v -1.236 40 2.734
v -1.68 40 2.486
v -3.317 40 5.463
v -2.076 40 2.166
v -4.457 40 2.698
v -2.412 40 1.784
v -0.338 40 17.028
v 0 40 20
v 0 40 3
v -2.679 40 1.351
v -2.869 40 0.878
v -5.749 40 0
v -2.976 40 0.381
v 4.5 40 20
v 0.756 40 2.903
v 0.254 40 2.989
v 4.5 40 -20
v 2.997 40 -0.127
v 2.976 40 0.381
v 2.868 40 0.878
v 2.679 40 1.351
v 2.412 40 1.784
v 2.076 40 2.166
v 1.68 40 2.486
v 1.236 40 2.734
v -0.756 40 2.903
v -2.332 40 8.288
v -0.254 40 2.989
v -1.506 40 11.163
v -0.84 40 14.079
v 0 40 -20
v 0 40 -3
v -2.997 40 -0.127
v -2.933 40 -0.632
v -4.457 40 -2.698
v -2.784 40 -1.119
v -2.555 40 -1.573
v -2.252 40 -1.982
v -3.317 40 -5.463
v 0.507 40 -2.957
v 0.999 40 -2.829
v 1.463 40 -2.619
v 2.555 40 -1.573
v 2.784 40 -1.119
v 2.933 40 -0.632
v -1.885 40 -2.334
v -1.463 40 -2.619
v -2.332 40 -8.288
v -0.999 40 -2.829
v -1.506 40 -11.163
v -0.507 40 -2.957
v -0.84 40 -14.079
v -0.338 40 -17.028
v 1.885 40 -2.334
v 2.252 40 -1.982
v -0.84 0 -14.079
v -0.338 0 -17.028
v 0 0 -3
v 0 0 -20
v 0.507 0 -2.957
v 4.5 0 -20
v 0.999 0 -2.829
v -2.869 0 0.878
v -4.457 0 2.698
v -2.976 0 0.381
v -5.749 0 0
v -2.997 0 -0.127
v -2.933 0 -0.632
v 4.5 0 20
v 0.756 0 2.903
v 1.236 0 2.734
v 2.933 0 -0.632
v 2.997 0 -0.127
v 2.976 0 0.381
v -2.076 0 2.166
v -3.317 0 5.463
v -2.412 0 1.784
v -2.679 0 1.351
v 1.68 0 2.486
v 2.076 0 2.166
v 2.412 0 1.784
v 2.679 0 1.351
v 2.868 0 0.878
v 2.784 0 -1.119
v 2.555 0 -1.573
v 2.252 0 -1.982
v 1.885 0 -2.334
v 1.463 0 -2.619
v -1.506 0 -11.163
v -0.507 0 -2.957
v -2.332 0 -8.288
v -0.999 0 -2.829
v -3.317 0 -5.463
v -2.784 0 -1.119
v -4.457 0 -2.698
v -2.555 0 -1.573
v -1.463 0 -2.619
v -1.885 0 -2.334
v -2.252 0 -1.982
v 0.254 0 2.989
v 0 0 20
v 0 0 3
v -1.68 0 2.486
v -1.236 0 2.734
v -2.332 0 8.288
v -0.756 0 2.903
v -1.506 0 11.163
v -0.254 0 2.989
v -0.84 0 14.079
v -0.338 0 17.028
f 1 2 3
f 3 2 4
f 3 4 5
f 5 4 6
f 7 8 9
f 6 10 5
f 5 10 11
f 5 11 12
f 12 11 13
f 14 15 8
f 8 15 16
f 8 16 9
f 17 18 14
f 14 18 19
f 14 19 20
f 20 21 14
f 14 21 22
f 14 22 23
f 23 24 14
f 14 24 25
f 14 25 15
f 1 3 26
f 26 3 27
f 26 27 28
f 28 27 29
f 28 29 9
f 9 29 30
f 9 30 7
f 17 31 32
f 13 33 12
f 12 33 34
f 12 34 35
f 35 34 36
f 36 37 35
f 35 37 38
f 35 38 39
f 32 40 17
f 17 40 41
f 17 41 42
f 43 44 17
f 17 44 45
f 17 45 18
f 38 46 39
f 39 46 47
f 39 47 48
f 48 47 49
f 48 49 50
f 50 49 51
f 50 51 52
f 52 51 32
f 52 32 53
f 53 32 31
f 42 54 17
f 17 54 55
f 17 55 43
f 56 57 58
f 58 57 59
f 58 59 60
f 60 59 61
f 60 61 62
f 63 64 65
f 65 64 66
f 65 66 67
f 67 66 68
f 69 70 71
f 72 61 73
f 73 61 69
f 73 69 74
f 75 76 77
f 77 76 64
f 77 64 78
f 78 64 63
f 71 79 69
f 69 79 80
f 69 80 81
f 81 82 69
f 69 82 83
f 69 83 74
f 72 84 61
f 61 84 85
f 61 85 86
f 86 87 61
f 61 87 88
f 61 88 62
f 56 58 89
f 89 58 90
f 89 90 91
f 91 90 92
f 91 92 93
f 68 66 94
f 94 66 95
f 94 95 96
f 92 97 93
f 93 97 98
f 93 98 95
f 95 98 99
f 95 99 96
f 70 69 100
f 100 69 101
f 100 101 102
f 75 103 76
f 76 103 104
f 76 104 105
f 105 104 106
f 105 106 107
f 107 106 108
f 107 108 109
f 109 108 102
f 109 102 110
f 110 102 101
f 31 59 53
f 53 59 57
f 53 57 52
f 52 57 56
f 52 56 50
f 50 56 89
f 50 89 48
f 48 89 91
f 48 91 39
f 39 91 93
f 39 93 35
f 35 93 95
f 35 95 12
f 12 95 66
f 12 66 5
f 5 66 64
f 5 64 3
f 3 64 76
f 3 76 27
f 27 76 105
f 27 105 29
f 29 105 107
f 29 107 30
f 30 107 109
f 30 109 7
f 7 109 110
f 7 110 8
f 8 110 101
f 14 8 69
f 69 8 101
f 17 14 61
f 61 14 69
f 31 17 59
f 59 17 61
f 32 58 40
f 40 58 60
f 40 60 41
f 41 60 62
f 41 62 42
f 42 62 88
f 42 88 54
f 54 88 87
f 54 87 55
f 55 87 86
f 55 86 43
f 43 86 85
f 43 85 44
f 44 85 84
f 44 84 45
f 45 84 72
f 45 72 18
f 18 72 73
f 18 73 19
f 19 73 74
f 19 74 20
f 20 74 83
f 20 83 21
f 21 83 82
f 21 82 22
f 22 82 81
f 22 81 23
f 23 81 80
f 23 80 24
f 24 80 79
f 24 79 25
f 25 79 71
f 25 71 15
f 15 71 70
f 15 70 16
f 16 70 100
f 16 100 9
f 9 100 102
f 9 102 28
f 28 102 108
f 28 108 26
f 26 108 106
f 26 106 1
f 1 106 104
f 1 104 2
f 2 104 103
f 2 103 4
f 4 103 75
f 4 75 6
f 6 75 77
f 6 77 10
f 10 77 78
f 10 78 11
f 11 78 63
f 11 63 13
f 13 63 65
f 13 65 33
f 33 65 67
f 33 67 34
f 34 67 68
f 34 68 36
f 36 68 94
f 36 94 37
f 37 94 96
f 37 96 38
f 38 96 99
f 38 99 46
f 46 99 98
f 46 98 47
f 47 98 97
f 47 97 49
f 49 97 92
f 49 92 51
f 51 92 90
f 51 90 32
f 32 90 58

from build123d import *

# Parameters (mm, degrees)
SKETCH1_R           = 3
BOSS_EXTRUDE1_DEPTH = 40


with BuildPart() as part:
    # Sketch1 → Boss-Extrude1 (new body)
    with BuildSketch(Plane(origin=(0, 0, 0), x_dir=(1, 0, 0), z_dir=(0, 1, 0))):
        with BuildLine():
            Line((0, 20), (4.5, 20))
            Line((4.5, 20), (4.5, -20))
            Line((4.5, -20), (0, -20))
            ThreePointArc((0, -20), (-1.898782269, -9.719444247), (-5.749445099, 0))
            ThreePointArc((-5.749445099, 0), (-1.898782269, 9.719444247), (0, 20))
        make_face()
        with Locations(Location((0, 0, 0), (0, 0, 270))):
            Circle(SKETCH1_R, mode=Mode.SUBTRACT)
    extrude(amount=BOSS_EXTRUDE1_DEPTH)


solid = part.part
